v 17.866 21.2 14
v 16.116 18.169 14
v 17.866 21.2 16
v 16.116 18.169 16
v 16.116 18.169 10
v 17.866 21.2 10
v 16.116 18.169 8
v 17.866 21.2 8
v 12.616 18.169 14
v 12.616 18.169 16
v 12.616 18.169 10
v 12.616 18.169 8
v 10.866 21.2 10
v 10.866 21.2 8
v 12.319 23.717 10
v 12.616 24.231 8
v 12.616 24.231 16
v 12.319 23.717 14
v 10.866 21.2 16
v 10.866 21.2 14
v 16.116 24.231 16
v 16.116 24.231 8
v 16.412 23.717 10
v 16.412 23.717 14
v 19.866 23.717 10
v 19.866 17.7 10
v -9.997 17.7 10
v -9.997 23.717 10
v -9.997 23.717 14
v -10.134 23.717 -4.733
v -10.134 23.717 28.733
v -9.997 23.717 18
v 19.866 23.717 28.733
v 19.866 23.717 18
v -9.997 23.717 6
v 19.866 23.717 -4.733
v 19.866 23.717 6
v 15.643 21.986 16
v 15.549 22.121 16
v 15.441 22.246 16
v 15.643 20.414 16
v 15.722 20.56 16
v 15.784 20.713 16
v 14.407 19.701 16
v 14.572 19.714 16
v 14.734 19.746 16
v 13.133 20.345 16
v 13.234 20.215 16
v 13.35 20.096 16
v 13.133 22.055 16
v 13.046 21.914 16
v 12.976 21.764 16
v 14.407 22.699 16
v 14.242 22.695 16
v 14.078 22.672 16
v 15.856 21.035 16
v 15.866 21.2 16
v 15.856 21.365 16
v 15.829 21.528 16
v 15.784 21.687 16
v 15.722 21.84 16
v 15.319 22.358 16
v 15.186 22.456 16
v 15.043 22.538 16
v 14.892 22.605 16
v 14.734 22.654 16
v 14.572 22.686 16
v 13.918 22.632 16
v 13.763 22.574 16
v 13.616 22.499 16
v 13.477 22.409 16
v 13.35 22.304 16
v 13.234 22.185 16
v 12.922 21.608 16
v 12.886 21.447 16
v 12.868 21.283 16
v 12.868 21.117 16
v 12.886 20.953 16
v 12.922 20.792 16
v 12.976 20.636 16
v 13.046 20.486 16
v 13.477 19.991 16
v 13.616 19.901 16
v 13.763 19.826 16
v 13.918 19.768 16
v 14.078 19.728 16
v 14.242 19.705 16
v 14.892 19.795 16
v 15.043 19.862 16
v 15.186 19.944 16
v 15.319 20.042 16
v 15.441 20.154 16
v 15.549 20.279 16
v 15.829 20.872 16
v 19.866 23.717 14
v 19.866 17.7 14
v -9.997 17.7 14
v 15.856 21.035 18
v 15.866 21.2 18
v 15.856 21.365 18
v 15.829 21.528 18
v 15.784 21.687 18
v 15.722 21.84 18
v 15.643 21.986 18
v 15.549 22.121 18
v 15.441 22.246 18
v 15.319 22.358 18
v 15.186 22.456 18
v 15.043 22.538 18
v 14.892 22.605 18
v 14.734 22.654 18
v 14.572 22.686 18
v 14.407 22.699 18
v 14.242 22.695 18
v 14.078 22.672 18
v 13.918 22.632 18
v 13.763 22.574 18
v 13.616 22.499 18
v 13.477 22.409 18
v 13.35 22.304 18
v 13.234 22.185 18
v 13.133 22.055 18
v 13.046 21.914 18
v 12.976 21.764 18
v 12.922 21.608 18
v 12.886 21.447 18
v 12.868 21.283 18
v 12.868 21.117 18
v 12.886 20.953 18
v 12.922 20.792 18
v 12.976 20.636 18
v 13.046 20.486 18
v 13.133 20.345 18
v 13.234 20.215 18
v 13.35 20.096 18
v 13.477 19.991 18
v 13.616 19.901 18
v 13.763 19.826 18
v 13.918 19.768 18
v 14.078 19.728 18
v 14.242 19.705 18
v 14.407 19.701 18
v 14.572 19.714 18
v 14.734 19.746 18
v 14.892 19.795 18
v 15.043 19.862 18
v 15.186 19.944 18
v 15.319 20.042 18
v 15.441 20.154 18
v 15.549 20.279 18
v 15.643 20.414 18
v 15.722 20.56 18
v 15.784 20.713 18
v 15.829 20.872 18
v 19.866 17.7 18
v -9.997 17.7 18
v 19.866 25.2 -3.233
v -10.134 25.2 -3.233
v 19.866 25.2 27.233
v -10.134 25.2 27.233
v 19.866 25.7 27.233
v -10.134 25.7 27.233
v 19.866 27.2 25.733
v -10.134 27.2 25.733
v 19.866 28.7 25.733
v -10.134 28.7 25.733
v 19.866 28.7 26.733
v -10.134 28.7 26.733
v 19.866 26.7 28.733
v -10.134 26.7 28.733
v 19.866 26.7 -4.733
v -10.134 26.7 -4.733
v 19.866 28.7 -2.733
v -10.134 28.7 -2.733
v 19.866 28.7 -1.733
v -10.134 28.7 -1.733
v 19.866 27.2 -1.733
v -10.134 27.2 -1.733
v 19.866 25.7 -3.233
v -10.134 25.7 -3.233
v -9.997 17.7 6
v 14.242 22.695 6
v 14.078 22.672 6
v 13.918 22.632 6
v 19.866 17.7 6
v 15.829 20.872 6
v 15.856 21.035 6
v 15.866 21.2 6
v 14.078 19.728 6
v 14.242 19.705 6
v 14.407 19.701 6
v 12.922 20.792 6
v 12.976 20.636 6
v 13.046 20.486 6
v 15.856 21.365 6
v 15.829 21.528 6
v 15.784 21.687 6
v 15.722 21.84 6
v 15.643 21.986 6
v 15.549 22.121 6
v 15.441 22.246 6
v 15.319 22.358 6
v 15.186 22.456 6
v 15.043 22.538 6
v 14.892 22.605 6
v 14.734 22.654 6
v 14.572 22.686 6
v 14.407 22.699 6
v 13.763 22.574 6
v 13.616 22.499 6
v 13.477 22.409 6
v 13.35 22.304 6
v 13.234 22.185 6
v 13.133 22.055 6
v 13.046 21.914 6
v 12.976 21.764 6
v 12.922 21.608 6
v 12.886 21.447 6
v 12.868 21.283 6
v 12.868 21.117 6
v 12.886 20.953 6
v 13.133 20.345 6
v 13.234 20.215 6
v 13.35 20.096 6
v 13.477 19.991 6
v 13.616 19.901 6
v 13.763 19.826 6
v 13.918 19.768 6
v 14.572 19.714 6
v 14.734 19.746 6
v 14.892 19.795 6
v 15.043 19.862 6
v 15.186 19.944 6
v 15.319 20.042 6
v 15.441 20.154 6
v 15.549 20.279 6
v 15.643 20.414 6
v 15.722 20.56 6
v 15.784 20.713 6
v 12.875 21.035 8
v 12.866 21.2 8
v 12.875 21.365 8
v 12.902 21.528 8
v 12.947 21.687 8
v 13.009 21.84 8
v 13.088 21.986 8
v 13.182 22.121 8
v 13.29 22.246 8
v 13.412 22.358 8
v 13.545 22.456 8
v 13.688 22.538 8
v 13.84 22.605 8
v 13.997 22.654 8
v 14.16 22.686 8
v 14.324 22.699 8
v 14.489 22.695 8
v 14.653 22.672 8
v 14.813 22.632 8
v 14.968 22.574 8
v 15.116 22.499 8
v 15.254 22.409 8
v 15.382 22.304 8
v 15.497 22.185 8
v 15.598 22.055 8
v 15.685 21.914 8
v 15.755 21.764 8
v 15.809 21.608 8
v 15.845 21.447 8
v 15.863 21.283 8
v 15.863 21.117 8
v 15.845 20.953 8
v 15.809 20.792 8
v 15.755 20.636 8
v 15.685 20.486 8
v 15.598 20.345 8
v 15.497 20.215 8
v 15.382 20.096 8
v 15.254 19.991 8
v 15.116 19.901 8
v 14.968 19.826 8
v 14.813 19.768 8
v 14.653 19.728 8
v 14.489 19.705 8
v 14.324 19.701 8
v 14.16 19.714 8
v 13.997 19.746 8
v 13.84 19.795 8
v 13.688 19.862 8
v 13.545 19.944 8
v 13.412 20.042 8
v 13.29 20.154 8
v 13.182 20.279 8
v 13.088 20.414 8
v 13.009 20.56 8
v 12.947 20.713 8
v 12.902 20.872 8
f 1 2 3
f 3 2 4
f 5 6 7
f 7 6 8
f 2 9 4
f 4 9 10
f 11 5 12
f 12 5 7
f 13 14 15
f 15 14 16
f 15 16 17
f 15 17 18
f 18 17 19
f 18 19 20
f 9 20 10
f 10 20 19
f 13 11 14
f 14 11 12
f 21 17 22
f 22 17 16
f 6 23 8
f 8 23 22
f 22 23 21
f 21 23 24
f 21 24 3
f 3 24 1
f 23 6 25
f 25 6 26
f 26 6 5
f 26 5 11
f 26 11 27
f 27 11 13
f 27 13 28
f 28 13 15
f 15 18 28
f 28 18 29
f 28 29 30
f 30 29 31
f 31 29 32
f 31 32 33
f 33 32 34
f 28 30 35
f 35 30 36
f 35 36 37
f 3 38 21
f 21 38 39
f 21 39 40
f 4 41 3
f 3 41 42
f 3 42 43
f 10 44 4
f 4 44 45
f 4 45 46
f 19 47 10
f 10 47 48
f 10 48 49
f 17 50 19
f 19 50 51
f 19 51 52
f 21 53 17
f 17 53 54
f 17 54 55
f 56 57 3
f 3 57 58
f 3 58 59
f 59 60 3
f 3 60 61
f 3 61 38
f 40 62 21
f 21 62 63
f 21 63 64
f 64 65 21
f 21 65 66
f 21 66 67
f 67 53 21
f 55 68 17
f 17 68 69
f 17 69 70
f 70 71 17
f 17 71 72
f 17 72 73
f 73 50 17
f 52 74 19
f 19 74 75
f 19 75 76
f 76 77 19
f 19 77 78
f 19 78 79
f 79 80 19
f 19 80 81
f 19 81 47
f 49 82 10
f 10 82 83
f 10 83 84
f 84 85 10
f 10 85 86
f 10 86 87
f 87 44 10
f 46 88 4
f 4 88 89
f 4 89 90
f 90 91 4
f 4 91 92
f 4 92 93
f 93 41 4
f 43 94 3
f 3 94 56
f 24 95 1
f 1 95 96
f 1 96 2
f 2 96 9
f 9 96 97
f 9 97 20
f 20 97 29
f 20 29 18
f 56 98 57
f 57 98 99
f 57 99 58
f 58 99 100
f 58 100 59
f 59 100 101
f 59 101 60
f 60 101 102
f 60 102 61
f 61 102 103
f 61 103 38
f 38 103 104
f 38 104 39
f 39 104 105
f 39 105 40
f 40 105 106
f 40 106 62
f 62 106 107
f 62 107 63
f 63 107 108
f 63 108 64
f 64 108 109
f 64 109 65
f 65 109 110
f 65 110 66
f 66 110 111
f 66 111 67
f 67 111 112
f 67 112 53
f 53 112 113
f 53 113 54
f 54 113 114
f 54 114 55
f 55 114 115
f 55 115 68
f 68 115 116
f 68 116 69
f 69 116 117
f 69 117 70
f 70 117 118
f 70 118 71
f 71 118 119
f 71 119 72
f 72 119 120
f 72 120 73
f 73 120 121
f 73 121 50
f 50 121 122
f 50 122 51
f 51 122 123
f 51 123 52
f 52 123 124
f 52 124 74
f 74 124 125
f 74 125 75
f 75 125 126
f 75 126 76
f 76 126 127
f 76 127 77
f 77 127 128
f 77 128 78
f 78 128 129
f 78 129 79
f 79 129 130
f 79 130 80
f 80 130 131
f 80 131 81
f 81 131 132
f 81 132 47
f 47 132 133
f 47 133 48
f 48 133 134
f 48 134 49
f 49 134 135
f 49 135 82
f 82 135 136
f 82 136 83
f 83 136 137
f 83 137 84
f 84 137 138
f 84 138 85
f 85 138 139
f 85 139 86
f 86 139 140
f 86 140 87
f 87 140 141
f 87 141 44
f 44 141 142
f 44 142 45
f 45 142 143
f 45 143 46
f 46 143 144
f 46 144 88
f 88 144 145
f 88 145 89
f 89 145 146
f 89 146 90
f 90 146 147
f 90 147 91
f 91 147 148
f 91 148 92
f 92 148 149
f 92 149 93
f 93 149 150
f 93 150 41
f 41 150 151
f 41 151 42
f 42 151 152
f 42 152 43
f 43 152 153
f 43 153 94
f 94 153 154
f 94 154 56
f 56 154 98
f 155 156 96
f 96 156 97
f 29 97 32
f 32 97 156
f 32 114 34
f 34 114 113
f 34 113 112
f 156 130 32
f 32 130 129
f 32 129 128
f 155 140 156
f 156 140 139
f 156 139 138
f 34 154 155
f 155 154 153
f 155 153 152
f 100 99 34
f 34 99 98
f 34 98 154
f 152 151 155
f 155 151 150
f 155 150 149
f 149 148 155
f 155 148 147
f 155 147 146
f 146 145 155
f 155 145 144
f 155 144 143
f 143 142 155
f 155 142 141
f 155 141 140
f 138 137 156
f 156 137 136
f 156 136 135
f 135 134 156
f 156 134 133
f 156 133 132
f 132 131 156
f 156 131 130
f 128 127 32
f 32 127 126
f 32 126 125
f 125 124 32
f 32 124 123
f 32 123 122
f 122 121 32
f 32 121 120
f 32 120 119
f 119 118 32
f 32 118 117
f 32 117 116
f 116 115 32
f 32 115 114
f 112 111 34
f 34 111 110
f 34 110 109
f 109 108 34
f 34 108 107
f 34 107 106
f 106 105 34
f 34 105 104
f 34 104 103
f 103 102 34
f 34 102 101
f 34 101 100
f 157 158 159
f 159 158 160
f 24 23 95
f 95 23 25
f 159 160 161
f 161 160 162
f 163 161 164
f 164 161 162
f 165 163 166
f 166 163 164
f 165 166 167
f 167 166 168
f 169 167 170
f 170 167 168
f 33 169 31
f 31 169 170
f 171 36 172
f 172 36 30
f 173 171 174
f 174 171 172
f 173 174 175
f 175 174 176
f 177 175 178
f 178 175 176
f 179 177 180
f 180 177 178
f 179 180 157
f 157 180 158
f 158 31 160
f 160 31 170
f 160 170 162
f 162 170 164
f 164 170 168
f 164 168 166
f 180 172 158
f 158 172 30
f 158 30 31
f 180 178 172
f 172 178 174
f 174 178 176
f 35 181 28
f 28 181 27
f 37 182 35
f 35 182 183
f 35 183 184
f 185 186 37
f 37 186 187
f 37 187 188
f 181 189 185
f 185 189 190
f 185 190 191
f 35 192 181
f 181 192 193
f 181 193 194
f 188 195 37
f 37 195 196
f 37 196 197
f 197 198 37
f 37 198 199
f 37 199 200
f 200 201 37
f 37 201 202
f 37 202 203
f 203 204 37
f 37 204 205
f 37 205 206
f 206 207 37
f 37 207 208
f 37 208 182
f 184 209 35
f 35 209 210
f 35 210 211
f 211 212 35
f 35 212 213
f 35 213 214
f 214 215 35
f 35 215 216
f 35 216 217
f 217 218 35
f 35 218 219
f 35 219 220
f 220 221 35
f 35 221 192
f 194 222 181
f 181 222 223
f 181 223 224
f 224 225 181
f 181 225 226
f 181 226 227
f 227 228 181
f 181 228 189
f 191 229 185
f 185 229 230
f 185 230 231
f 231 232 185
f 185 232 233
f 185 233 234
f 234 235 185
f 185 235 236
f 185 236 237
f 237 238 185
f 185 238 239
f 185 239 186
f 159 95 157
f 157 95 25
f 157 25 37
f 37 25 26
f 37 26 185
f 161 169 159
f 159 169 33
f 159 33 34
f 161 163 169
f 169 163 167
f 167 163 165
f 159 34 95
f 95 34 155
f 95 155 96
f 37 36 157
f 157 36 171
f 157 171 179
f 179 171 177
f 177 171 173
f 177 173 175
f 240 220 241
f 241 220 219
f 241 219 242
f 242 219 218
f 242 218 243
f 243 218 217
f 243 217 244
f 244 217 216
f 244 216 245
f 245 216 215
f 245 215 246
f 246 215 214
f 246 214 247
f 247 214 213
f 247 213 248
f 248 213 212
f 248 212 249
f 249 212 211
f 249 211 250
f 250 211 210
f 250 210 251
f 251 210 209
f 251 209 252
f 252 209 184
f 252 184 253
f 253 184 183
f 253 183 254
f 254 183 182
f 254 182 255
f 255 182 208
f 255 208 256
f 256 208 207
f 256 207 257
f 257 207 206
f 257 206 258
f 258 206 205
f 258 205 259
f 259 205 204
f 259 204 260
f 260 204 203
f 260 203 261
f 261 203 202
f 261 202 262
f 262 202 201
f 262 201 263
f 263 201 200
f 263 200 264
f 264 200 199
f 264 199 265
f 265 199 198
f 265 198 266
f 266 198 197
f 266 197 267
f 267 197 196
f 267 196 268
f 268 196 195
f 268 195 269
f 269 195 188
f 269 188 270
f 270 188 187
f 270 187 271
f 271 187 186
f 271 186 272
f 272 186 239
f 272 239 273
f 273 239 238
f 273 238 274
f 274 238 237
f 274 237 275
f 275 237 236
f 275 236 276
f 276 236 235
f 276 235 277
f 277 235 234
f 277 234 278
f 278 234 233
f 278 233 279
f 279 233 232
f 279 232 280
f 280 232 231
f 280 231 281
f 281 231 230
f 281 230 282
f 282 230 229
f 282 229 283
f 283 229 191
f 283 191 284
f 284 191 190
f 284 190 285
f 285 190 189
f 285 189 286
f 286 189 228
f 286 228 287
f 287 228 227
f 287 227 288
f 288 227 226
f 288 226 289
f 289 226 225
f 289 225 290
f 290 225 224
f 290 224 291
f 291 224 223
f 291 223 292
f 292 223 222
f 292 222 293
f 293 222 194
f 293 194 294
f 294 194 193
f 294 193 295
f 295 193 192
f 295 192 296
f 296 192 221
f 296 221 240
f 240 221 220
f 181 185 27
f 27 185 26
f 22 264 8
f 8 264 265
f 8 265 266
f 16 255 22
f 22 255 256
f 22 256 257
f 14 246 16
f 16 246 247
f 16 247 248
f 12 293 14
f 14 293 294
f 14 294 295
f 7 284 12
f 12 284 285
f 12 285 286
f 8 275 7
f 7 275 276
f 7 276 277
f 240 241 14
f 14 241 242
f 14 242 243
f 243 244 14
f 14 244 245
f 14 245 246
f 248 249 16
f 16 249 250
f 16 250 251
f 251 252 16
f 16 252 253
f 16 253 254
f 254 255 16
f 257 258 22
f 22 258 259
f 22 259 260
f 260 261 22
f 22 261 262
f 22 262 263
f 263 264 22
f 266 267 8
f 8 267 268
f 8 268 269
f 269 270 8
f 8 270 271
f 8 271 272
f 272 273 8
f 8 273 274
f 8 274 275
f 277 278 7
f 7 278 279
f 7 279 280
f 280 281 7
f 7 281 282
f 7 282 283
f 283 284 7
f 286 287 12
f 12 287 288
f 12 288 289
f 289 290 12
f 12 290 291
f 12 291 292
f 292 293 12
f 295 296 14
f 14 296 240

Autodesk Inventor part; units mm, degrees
ref_plane "YZ Plane" through (0, 0, 0) normal (1, 0, 0) x (0, 1, 0)
ref_plane "XZ Plane" through (0, 0, 0) normal (0, 1, 0) x (-1, 0, 0)
sketch "Sketch1" plane through (0, 0, 0) normal (0, 0, 1) x (1, 0, 0)
  circle A0 centre (23.8656, 17.2) radius 3 projected
  line L0 (34.8656, 12.9938) -> (34.8656, 22.2) projected
  line L1 (165.9417, 25.2) -> (-24.8583, 25.2) projected
  line L2 (34.8656, 25.2) -> (-24.8606, 25.2)
  line L3 (-24.8606, 25.2) -> (-24.8606, 10.2)
  line L4 (-24.8606, 10.2) -> (34.8656, 10.2)
  line L5 (34.8656, 10.2) -> (34.8656, 25.2)
  point P0 (0, 0)
  dimension "d0" = 15
extrude "Extrusion1" add sketch "Sketch1" along normal blind 4
sketch "Sketch2" plane through (0, 0, 4) normal (0, 0, 1) x (1, 0, 0)
  circle A0 centre (23.8656, 17.2) radius 3 projected
  line L0 (17.8656, 17.2) -> (20.8656, 22.3962)
  line L1 (20.8656, 22.3962) -> (26.8656, 22.3962)
  line L2 (26.8656, 22.3962) -> (29.8656, 17.2)
  line L3 (29.8656, 17.2) -> (26.8656, 12.0038)
  line L4 (26.8656, 12.0038) -> (20.8656, 12.0038)
  line L5 (20.8656, 12.0038) -> (17.8656, 17.2)
  circle A1 centre (23.8656, 17.2) radius 3 projected
  line L6 (34.8656, 25.2) -> (-24.8606, 25.2) projected
  line L7 (-24.8606, 25.2) -> (-24.8606, 10.2) projected
  line L8 (-24.8606, 10.2) -> (34.8656, 10.2) projected
  line L9 (34.8656, 10.2) -> (34.8656, 25.2) projected
  point P0 (0, 0)
extrude "Extrusion2" add sketch "Sketch2" along normal blind 4 contours L9 L8 L7 L6
sketch "Sketch4" plane through (34.8656, 10.2, 8) normal (1, 0, 0) x (0, 0, -1)
  line L0 (8, 0.0155) -> (-4, 0.0155)
  point P0 (8, -10.2)
  dimension "d8" = 12
sketch "Sketch6" plane through (0, 0, 4) normal (0, 0, 1) x (1, 0, 0)
  line L0 (20.8656, 22.3962) -> (17.8656, 17.2) projected
  line L1 (17.8656, 17.2) -> (20.8656, 12.0038) projected
  line L2 (20.8656, 12.0038) -> (26.8656, 12.0038) projected
  line L3 (26.8656, 12.0038) -> (29.8656, 17.2) projected
  line L4 (29.8656, 17.2) -> (26.8656, 22.3962) projected
  circle A0 centre (23.8656, 17.2) radius 3 projected
  line L5 (26.8656, 22.3962) -> (20.8656, 22.3962) projected
  point P0 (0, 0)
extrude "Extrusion4" cut sketch "Sketch6" along normal blind 16
sketch "Sketch7" plane through (0, 0, 4) normal (0, 0, 1) x (1, 0, 0)
  circle A0 centre (23.8656, 17.2) radius 3 projected
  line L0 (17.8656, 17.2) -> (20.8656, 12.0038) projected
  line L1 (17.8656, 17.2) -> (20.8656, 22.3962)
  line L2 (20.8656, 22.3962) -> (26.8656, 22.3962)
  line L3 (26.8656, 22.3962) -> (29.8656, 17.2)
  line L4 (29.8656, 17.2) -> (26.8656, 12.0038)
  line L5 (26.8656, 12.0038) -> (20.8656, 12.0038)
  line L6 (20.8656, 12.0038) -> (17.8656, 17.2)
  point P0 (0, 0)
extrude "Extrusion5" cut sketch "Sketch7" along normal blind 16
sketch "Sketch8" plane through (34.8656, 10.2, 0) normal (1, 0, 0) x (0, 0, -1)
  line L0 (-41.5, 15) -> (17.4652, 15) projected
  line L1 (17.4652, 16) -> (17.4652, 15) construction
  line L2 (15.4652, 18) -> (17.4652, 16) construction
  line L3 (14.5, 18) -> (15.4652, 18) construction
  line L4 (14.5, 18) -> (14.5, 63) construction
  arc A0 (14.5, 63) -> (12.5, 65) centre (12.5, 63) ccw construction
  line L5 (12.5, 65) -> (7.5, 65) construction
  line L6 (7.5, 65) -> (10.5, 62) construction
  line L7 (10.5, 62) -> (10.5, 20) construction
  arc A1 (8.5, 18) -> (10.5, 20) centre (8.5, 20) ccw construction
  line L8 (8.5, 18) -> (-32.5, 18) construction
  arc A2 (-34.5, 20) -> (-32.5, 18) centre (-32.5, 20) ccw construction
  line L9 (-34.5, 20) -> (-34.5, 62) construction
  line L10 (-34.5, 62) -> (-31.5, 65) construction
  line L11 (-31.5, 65) -> (-36.5, 65) construction
  arc A3 (-36.5, 65) -> (-38.5, 63) centre (-36.5, 63) ccw construction
  line L12 (-38.5, 63) -> (-38.5, 18) construction
  line L13 (-38.5, 18) -> (-39.5, 18) construction
  line L14 (-39.5, 18) -> (-41.5, 16) construction
  line L15 (-41.5, 16) -> (-41.5, 15) construction
  line L16 (0, 15) -> (17.4652, 15)
  line L17 (17.4652, 15) -> (18.4652, 15)
  line L18 (18.4652, 15) -> (18.4652, 16)
  line L19 (18.4652, 16) -> (15.4652, 19)
  line L20 (21.4652, 15) -> (21.4652, 18)
  line L21 (17.4652, 22) -> (15.4652, 22)
  line L22 (21.4652, 15) -> (21.4652, 12.0348)
  line L23 (21.4652, 12.0348) -> (0, 12.0348)
  line L24 (21.4652, 18) -> (17.4652, 22)
  line L25 (0, 0) -> (0, 15) construction
  line L26 (-32.6881, 12) -> (-32.6881, -32.4) projected
  line L27 (0, 12.0348) -> (-12, 12.0348)
  line L28 (-12, 15) -> (0, 15)
  arc A4 (-34.5, 20) -> (-32.5, 18) centre (-32.5, 20) ccw construction
  line L29 (-24, 15) -> (-41.4652, 15)
  line L30 (-41.4652, 15) -> (-42.4652, 15)
  line L31 (-42.4652, 15) -> (-42.4652, 16)
  line L32 (-42.4652, 16) -> (-39.4652, 19)
  line L33 (-45.4652, 15) -> (-45.4652, 18)
  line L34 (-41.4652, 22) -> (-39.4652, 22)
  line L35 (-45.4652, 15) -> (-45.4652, 12.0348)
  line L36 (-45.4652, 12.0348) -> (-24, 12.0348)
  line L37 (-45.4652, 18) -> (-41.4652, 22)
  line L38 (-24, 12.0348) -> (-12, 12.0348)
  line L39 (-12, 15) -> (-24, 15)
  line L40 (18.4652, 15) -> (-42.4652, 15)
  line L41 (21.4652, 12.0348) -> (-45.4652, 12.0348)
  line L42 (-45.4652, 12.0348) -> (-45.4652, 18)
  line L43 (-45.4652, 18) -> (-41.4652, 22)
  line L44 (-41.4652, 22) -> (-39.4652, 22)
  line L45 (-39.4652, 19) -> (-42.4652, 16)
  line L46 (-42.4652, 16) -> (-42.4652, 15)
  line L47 (-42.4652, 15) -> (18.4652, 15)
  line L48 (15.4652, 19) -> (15.4652, 22)
  line L49 (-39.4652, 19) -> (-39.4652, 22)
  point P0 (0, -10.2)
  point P1 (21.4652, 22)
  point P2 (-45.4652, 22)
  dimension "d16" = 3
  dimension "d17" = 4
  dimension "d18" = 4
extrude "Extrusion6" add sketch "Sketch8" against normal blind 60
sketch "Sketch9" plane through (34.8656, 22.2348, 8) normal (0, -1, 0) x (1, 0, 0)
  line L0 (0, -8) -> (0, -29.4652) projected
  line L1 (-60, -29.4652) -> (-60, 37.4652) projected
  line L2 (0, -8) -> (-60, -8)
  line L3 (-60, -8) -> (-60, 16)
  line L4 (-60, 16) -> (0, 16)
  line L5 (0, 16) -> (0, -8)
  line L6 (-60, 4) -> (0, 4)
  point P0 (-34.8656, -8)
  dimension "d21" = 24
ref_plane "Work Plane3" through (-25.1344, 22.2348, 12) normal (0, 0, -1) x (1, 0, 0)
mirror "Mirror2" about plane through (-25.1344, 22.2348, 12) normal (0, 0, -1) of "Extrusion1", "Extrusion2"
sketch "Sketch11" plane through (26.9587, 22.2348, 20) normal (0, 0, -1) x (-1, 0, 0)
  circle A0 centre (3.0931, -5.0348) radius 3 projected
  circle A1 centre (3.0931, -5.0348) radius 7
  circle A2 centre (3.0931, -5.0348) radius 3 projected
  line L0 (-3.9069, -5.0348) -> (-0.4069, 1.0273)
  line L1 (-0.4069, 1.0273) -> (6.5931, 1.0273)
  line L2 (6.5931, 1.0273) -> (10.0931, -5.0348)
  line L3 (10.0931, -5.0348) -> (6.5931, -11.097)
  line L4 (6.5931, -11.097) -> (-0.4069, -11.097)
  line L5 (-0.4069, -11.097) -> (-3.9069, -5.0348)
  point P0 (26.9587, -22.2348)
  dimension "d25" = 14
extrude "Extrusion8" cut sketch "Sketch11" along normal blind 16 contours L3 L4 L5 L0 L1 L2
scale "Scale1" factors (0.5, 0.5, 0.5) then translate (2.4328, 12.6, 6) bodies 1
equation "\"d18\" = d17"
properties part number "TopToBatteryJoint"
